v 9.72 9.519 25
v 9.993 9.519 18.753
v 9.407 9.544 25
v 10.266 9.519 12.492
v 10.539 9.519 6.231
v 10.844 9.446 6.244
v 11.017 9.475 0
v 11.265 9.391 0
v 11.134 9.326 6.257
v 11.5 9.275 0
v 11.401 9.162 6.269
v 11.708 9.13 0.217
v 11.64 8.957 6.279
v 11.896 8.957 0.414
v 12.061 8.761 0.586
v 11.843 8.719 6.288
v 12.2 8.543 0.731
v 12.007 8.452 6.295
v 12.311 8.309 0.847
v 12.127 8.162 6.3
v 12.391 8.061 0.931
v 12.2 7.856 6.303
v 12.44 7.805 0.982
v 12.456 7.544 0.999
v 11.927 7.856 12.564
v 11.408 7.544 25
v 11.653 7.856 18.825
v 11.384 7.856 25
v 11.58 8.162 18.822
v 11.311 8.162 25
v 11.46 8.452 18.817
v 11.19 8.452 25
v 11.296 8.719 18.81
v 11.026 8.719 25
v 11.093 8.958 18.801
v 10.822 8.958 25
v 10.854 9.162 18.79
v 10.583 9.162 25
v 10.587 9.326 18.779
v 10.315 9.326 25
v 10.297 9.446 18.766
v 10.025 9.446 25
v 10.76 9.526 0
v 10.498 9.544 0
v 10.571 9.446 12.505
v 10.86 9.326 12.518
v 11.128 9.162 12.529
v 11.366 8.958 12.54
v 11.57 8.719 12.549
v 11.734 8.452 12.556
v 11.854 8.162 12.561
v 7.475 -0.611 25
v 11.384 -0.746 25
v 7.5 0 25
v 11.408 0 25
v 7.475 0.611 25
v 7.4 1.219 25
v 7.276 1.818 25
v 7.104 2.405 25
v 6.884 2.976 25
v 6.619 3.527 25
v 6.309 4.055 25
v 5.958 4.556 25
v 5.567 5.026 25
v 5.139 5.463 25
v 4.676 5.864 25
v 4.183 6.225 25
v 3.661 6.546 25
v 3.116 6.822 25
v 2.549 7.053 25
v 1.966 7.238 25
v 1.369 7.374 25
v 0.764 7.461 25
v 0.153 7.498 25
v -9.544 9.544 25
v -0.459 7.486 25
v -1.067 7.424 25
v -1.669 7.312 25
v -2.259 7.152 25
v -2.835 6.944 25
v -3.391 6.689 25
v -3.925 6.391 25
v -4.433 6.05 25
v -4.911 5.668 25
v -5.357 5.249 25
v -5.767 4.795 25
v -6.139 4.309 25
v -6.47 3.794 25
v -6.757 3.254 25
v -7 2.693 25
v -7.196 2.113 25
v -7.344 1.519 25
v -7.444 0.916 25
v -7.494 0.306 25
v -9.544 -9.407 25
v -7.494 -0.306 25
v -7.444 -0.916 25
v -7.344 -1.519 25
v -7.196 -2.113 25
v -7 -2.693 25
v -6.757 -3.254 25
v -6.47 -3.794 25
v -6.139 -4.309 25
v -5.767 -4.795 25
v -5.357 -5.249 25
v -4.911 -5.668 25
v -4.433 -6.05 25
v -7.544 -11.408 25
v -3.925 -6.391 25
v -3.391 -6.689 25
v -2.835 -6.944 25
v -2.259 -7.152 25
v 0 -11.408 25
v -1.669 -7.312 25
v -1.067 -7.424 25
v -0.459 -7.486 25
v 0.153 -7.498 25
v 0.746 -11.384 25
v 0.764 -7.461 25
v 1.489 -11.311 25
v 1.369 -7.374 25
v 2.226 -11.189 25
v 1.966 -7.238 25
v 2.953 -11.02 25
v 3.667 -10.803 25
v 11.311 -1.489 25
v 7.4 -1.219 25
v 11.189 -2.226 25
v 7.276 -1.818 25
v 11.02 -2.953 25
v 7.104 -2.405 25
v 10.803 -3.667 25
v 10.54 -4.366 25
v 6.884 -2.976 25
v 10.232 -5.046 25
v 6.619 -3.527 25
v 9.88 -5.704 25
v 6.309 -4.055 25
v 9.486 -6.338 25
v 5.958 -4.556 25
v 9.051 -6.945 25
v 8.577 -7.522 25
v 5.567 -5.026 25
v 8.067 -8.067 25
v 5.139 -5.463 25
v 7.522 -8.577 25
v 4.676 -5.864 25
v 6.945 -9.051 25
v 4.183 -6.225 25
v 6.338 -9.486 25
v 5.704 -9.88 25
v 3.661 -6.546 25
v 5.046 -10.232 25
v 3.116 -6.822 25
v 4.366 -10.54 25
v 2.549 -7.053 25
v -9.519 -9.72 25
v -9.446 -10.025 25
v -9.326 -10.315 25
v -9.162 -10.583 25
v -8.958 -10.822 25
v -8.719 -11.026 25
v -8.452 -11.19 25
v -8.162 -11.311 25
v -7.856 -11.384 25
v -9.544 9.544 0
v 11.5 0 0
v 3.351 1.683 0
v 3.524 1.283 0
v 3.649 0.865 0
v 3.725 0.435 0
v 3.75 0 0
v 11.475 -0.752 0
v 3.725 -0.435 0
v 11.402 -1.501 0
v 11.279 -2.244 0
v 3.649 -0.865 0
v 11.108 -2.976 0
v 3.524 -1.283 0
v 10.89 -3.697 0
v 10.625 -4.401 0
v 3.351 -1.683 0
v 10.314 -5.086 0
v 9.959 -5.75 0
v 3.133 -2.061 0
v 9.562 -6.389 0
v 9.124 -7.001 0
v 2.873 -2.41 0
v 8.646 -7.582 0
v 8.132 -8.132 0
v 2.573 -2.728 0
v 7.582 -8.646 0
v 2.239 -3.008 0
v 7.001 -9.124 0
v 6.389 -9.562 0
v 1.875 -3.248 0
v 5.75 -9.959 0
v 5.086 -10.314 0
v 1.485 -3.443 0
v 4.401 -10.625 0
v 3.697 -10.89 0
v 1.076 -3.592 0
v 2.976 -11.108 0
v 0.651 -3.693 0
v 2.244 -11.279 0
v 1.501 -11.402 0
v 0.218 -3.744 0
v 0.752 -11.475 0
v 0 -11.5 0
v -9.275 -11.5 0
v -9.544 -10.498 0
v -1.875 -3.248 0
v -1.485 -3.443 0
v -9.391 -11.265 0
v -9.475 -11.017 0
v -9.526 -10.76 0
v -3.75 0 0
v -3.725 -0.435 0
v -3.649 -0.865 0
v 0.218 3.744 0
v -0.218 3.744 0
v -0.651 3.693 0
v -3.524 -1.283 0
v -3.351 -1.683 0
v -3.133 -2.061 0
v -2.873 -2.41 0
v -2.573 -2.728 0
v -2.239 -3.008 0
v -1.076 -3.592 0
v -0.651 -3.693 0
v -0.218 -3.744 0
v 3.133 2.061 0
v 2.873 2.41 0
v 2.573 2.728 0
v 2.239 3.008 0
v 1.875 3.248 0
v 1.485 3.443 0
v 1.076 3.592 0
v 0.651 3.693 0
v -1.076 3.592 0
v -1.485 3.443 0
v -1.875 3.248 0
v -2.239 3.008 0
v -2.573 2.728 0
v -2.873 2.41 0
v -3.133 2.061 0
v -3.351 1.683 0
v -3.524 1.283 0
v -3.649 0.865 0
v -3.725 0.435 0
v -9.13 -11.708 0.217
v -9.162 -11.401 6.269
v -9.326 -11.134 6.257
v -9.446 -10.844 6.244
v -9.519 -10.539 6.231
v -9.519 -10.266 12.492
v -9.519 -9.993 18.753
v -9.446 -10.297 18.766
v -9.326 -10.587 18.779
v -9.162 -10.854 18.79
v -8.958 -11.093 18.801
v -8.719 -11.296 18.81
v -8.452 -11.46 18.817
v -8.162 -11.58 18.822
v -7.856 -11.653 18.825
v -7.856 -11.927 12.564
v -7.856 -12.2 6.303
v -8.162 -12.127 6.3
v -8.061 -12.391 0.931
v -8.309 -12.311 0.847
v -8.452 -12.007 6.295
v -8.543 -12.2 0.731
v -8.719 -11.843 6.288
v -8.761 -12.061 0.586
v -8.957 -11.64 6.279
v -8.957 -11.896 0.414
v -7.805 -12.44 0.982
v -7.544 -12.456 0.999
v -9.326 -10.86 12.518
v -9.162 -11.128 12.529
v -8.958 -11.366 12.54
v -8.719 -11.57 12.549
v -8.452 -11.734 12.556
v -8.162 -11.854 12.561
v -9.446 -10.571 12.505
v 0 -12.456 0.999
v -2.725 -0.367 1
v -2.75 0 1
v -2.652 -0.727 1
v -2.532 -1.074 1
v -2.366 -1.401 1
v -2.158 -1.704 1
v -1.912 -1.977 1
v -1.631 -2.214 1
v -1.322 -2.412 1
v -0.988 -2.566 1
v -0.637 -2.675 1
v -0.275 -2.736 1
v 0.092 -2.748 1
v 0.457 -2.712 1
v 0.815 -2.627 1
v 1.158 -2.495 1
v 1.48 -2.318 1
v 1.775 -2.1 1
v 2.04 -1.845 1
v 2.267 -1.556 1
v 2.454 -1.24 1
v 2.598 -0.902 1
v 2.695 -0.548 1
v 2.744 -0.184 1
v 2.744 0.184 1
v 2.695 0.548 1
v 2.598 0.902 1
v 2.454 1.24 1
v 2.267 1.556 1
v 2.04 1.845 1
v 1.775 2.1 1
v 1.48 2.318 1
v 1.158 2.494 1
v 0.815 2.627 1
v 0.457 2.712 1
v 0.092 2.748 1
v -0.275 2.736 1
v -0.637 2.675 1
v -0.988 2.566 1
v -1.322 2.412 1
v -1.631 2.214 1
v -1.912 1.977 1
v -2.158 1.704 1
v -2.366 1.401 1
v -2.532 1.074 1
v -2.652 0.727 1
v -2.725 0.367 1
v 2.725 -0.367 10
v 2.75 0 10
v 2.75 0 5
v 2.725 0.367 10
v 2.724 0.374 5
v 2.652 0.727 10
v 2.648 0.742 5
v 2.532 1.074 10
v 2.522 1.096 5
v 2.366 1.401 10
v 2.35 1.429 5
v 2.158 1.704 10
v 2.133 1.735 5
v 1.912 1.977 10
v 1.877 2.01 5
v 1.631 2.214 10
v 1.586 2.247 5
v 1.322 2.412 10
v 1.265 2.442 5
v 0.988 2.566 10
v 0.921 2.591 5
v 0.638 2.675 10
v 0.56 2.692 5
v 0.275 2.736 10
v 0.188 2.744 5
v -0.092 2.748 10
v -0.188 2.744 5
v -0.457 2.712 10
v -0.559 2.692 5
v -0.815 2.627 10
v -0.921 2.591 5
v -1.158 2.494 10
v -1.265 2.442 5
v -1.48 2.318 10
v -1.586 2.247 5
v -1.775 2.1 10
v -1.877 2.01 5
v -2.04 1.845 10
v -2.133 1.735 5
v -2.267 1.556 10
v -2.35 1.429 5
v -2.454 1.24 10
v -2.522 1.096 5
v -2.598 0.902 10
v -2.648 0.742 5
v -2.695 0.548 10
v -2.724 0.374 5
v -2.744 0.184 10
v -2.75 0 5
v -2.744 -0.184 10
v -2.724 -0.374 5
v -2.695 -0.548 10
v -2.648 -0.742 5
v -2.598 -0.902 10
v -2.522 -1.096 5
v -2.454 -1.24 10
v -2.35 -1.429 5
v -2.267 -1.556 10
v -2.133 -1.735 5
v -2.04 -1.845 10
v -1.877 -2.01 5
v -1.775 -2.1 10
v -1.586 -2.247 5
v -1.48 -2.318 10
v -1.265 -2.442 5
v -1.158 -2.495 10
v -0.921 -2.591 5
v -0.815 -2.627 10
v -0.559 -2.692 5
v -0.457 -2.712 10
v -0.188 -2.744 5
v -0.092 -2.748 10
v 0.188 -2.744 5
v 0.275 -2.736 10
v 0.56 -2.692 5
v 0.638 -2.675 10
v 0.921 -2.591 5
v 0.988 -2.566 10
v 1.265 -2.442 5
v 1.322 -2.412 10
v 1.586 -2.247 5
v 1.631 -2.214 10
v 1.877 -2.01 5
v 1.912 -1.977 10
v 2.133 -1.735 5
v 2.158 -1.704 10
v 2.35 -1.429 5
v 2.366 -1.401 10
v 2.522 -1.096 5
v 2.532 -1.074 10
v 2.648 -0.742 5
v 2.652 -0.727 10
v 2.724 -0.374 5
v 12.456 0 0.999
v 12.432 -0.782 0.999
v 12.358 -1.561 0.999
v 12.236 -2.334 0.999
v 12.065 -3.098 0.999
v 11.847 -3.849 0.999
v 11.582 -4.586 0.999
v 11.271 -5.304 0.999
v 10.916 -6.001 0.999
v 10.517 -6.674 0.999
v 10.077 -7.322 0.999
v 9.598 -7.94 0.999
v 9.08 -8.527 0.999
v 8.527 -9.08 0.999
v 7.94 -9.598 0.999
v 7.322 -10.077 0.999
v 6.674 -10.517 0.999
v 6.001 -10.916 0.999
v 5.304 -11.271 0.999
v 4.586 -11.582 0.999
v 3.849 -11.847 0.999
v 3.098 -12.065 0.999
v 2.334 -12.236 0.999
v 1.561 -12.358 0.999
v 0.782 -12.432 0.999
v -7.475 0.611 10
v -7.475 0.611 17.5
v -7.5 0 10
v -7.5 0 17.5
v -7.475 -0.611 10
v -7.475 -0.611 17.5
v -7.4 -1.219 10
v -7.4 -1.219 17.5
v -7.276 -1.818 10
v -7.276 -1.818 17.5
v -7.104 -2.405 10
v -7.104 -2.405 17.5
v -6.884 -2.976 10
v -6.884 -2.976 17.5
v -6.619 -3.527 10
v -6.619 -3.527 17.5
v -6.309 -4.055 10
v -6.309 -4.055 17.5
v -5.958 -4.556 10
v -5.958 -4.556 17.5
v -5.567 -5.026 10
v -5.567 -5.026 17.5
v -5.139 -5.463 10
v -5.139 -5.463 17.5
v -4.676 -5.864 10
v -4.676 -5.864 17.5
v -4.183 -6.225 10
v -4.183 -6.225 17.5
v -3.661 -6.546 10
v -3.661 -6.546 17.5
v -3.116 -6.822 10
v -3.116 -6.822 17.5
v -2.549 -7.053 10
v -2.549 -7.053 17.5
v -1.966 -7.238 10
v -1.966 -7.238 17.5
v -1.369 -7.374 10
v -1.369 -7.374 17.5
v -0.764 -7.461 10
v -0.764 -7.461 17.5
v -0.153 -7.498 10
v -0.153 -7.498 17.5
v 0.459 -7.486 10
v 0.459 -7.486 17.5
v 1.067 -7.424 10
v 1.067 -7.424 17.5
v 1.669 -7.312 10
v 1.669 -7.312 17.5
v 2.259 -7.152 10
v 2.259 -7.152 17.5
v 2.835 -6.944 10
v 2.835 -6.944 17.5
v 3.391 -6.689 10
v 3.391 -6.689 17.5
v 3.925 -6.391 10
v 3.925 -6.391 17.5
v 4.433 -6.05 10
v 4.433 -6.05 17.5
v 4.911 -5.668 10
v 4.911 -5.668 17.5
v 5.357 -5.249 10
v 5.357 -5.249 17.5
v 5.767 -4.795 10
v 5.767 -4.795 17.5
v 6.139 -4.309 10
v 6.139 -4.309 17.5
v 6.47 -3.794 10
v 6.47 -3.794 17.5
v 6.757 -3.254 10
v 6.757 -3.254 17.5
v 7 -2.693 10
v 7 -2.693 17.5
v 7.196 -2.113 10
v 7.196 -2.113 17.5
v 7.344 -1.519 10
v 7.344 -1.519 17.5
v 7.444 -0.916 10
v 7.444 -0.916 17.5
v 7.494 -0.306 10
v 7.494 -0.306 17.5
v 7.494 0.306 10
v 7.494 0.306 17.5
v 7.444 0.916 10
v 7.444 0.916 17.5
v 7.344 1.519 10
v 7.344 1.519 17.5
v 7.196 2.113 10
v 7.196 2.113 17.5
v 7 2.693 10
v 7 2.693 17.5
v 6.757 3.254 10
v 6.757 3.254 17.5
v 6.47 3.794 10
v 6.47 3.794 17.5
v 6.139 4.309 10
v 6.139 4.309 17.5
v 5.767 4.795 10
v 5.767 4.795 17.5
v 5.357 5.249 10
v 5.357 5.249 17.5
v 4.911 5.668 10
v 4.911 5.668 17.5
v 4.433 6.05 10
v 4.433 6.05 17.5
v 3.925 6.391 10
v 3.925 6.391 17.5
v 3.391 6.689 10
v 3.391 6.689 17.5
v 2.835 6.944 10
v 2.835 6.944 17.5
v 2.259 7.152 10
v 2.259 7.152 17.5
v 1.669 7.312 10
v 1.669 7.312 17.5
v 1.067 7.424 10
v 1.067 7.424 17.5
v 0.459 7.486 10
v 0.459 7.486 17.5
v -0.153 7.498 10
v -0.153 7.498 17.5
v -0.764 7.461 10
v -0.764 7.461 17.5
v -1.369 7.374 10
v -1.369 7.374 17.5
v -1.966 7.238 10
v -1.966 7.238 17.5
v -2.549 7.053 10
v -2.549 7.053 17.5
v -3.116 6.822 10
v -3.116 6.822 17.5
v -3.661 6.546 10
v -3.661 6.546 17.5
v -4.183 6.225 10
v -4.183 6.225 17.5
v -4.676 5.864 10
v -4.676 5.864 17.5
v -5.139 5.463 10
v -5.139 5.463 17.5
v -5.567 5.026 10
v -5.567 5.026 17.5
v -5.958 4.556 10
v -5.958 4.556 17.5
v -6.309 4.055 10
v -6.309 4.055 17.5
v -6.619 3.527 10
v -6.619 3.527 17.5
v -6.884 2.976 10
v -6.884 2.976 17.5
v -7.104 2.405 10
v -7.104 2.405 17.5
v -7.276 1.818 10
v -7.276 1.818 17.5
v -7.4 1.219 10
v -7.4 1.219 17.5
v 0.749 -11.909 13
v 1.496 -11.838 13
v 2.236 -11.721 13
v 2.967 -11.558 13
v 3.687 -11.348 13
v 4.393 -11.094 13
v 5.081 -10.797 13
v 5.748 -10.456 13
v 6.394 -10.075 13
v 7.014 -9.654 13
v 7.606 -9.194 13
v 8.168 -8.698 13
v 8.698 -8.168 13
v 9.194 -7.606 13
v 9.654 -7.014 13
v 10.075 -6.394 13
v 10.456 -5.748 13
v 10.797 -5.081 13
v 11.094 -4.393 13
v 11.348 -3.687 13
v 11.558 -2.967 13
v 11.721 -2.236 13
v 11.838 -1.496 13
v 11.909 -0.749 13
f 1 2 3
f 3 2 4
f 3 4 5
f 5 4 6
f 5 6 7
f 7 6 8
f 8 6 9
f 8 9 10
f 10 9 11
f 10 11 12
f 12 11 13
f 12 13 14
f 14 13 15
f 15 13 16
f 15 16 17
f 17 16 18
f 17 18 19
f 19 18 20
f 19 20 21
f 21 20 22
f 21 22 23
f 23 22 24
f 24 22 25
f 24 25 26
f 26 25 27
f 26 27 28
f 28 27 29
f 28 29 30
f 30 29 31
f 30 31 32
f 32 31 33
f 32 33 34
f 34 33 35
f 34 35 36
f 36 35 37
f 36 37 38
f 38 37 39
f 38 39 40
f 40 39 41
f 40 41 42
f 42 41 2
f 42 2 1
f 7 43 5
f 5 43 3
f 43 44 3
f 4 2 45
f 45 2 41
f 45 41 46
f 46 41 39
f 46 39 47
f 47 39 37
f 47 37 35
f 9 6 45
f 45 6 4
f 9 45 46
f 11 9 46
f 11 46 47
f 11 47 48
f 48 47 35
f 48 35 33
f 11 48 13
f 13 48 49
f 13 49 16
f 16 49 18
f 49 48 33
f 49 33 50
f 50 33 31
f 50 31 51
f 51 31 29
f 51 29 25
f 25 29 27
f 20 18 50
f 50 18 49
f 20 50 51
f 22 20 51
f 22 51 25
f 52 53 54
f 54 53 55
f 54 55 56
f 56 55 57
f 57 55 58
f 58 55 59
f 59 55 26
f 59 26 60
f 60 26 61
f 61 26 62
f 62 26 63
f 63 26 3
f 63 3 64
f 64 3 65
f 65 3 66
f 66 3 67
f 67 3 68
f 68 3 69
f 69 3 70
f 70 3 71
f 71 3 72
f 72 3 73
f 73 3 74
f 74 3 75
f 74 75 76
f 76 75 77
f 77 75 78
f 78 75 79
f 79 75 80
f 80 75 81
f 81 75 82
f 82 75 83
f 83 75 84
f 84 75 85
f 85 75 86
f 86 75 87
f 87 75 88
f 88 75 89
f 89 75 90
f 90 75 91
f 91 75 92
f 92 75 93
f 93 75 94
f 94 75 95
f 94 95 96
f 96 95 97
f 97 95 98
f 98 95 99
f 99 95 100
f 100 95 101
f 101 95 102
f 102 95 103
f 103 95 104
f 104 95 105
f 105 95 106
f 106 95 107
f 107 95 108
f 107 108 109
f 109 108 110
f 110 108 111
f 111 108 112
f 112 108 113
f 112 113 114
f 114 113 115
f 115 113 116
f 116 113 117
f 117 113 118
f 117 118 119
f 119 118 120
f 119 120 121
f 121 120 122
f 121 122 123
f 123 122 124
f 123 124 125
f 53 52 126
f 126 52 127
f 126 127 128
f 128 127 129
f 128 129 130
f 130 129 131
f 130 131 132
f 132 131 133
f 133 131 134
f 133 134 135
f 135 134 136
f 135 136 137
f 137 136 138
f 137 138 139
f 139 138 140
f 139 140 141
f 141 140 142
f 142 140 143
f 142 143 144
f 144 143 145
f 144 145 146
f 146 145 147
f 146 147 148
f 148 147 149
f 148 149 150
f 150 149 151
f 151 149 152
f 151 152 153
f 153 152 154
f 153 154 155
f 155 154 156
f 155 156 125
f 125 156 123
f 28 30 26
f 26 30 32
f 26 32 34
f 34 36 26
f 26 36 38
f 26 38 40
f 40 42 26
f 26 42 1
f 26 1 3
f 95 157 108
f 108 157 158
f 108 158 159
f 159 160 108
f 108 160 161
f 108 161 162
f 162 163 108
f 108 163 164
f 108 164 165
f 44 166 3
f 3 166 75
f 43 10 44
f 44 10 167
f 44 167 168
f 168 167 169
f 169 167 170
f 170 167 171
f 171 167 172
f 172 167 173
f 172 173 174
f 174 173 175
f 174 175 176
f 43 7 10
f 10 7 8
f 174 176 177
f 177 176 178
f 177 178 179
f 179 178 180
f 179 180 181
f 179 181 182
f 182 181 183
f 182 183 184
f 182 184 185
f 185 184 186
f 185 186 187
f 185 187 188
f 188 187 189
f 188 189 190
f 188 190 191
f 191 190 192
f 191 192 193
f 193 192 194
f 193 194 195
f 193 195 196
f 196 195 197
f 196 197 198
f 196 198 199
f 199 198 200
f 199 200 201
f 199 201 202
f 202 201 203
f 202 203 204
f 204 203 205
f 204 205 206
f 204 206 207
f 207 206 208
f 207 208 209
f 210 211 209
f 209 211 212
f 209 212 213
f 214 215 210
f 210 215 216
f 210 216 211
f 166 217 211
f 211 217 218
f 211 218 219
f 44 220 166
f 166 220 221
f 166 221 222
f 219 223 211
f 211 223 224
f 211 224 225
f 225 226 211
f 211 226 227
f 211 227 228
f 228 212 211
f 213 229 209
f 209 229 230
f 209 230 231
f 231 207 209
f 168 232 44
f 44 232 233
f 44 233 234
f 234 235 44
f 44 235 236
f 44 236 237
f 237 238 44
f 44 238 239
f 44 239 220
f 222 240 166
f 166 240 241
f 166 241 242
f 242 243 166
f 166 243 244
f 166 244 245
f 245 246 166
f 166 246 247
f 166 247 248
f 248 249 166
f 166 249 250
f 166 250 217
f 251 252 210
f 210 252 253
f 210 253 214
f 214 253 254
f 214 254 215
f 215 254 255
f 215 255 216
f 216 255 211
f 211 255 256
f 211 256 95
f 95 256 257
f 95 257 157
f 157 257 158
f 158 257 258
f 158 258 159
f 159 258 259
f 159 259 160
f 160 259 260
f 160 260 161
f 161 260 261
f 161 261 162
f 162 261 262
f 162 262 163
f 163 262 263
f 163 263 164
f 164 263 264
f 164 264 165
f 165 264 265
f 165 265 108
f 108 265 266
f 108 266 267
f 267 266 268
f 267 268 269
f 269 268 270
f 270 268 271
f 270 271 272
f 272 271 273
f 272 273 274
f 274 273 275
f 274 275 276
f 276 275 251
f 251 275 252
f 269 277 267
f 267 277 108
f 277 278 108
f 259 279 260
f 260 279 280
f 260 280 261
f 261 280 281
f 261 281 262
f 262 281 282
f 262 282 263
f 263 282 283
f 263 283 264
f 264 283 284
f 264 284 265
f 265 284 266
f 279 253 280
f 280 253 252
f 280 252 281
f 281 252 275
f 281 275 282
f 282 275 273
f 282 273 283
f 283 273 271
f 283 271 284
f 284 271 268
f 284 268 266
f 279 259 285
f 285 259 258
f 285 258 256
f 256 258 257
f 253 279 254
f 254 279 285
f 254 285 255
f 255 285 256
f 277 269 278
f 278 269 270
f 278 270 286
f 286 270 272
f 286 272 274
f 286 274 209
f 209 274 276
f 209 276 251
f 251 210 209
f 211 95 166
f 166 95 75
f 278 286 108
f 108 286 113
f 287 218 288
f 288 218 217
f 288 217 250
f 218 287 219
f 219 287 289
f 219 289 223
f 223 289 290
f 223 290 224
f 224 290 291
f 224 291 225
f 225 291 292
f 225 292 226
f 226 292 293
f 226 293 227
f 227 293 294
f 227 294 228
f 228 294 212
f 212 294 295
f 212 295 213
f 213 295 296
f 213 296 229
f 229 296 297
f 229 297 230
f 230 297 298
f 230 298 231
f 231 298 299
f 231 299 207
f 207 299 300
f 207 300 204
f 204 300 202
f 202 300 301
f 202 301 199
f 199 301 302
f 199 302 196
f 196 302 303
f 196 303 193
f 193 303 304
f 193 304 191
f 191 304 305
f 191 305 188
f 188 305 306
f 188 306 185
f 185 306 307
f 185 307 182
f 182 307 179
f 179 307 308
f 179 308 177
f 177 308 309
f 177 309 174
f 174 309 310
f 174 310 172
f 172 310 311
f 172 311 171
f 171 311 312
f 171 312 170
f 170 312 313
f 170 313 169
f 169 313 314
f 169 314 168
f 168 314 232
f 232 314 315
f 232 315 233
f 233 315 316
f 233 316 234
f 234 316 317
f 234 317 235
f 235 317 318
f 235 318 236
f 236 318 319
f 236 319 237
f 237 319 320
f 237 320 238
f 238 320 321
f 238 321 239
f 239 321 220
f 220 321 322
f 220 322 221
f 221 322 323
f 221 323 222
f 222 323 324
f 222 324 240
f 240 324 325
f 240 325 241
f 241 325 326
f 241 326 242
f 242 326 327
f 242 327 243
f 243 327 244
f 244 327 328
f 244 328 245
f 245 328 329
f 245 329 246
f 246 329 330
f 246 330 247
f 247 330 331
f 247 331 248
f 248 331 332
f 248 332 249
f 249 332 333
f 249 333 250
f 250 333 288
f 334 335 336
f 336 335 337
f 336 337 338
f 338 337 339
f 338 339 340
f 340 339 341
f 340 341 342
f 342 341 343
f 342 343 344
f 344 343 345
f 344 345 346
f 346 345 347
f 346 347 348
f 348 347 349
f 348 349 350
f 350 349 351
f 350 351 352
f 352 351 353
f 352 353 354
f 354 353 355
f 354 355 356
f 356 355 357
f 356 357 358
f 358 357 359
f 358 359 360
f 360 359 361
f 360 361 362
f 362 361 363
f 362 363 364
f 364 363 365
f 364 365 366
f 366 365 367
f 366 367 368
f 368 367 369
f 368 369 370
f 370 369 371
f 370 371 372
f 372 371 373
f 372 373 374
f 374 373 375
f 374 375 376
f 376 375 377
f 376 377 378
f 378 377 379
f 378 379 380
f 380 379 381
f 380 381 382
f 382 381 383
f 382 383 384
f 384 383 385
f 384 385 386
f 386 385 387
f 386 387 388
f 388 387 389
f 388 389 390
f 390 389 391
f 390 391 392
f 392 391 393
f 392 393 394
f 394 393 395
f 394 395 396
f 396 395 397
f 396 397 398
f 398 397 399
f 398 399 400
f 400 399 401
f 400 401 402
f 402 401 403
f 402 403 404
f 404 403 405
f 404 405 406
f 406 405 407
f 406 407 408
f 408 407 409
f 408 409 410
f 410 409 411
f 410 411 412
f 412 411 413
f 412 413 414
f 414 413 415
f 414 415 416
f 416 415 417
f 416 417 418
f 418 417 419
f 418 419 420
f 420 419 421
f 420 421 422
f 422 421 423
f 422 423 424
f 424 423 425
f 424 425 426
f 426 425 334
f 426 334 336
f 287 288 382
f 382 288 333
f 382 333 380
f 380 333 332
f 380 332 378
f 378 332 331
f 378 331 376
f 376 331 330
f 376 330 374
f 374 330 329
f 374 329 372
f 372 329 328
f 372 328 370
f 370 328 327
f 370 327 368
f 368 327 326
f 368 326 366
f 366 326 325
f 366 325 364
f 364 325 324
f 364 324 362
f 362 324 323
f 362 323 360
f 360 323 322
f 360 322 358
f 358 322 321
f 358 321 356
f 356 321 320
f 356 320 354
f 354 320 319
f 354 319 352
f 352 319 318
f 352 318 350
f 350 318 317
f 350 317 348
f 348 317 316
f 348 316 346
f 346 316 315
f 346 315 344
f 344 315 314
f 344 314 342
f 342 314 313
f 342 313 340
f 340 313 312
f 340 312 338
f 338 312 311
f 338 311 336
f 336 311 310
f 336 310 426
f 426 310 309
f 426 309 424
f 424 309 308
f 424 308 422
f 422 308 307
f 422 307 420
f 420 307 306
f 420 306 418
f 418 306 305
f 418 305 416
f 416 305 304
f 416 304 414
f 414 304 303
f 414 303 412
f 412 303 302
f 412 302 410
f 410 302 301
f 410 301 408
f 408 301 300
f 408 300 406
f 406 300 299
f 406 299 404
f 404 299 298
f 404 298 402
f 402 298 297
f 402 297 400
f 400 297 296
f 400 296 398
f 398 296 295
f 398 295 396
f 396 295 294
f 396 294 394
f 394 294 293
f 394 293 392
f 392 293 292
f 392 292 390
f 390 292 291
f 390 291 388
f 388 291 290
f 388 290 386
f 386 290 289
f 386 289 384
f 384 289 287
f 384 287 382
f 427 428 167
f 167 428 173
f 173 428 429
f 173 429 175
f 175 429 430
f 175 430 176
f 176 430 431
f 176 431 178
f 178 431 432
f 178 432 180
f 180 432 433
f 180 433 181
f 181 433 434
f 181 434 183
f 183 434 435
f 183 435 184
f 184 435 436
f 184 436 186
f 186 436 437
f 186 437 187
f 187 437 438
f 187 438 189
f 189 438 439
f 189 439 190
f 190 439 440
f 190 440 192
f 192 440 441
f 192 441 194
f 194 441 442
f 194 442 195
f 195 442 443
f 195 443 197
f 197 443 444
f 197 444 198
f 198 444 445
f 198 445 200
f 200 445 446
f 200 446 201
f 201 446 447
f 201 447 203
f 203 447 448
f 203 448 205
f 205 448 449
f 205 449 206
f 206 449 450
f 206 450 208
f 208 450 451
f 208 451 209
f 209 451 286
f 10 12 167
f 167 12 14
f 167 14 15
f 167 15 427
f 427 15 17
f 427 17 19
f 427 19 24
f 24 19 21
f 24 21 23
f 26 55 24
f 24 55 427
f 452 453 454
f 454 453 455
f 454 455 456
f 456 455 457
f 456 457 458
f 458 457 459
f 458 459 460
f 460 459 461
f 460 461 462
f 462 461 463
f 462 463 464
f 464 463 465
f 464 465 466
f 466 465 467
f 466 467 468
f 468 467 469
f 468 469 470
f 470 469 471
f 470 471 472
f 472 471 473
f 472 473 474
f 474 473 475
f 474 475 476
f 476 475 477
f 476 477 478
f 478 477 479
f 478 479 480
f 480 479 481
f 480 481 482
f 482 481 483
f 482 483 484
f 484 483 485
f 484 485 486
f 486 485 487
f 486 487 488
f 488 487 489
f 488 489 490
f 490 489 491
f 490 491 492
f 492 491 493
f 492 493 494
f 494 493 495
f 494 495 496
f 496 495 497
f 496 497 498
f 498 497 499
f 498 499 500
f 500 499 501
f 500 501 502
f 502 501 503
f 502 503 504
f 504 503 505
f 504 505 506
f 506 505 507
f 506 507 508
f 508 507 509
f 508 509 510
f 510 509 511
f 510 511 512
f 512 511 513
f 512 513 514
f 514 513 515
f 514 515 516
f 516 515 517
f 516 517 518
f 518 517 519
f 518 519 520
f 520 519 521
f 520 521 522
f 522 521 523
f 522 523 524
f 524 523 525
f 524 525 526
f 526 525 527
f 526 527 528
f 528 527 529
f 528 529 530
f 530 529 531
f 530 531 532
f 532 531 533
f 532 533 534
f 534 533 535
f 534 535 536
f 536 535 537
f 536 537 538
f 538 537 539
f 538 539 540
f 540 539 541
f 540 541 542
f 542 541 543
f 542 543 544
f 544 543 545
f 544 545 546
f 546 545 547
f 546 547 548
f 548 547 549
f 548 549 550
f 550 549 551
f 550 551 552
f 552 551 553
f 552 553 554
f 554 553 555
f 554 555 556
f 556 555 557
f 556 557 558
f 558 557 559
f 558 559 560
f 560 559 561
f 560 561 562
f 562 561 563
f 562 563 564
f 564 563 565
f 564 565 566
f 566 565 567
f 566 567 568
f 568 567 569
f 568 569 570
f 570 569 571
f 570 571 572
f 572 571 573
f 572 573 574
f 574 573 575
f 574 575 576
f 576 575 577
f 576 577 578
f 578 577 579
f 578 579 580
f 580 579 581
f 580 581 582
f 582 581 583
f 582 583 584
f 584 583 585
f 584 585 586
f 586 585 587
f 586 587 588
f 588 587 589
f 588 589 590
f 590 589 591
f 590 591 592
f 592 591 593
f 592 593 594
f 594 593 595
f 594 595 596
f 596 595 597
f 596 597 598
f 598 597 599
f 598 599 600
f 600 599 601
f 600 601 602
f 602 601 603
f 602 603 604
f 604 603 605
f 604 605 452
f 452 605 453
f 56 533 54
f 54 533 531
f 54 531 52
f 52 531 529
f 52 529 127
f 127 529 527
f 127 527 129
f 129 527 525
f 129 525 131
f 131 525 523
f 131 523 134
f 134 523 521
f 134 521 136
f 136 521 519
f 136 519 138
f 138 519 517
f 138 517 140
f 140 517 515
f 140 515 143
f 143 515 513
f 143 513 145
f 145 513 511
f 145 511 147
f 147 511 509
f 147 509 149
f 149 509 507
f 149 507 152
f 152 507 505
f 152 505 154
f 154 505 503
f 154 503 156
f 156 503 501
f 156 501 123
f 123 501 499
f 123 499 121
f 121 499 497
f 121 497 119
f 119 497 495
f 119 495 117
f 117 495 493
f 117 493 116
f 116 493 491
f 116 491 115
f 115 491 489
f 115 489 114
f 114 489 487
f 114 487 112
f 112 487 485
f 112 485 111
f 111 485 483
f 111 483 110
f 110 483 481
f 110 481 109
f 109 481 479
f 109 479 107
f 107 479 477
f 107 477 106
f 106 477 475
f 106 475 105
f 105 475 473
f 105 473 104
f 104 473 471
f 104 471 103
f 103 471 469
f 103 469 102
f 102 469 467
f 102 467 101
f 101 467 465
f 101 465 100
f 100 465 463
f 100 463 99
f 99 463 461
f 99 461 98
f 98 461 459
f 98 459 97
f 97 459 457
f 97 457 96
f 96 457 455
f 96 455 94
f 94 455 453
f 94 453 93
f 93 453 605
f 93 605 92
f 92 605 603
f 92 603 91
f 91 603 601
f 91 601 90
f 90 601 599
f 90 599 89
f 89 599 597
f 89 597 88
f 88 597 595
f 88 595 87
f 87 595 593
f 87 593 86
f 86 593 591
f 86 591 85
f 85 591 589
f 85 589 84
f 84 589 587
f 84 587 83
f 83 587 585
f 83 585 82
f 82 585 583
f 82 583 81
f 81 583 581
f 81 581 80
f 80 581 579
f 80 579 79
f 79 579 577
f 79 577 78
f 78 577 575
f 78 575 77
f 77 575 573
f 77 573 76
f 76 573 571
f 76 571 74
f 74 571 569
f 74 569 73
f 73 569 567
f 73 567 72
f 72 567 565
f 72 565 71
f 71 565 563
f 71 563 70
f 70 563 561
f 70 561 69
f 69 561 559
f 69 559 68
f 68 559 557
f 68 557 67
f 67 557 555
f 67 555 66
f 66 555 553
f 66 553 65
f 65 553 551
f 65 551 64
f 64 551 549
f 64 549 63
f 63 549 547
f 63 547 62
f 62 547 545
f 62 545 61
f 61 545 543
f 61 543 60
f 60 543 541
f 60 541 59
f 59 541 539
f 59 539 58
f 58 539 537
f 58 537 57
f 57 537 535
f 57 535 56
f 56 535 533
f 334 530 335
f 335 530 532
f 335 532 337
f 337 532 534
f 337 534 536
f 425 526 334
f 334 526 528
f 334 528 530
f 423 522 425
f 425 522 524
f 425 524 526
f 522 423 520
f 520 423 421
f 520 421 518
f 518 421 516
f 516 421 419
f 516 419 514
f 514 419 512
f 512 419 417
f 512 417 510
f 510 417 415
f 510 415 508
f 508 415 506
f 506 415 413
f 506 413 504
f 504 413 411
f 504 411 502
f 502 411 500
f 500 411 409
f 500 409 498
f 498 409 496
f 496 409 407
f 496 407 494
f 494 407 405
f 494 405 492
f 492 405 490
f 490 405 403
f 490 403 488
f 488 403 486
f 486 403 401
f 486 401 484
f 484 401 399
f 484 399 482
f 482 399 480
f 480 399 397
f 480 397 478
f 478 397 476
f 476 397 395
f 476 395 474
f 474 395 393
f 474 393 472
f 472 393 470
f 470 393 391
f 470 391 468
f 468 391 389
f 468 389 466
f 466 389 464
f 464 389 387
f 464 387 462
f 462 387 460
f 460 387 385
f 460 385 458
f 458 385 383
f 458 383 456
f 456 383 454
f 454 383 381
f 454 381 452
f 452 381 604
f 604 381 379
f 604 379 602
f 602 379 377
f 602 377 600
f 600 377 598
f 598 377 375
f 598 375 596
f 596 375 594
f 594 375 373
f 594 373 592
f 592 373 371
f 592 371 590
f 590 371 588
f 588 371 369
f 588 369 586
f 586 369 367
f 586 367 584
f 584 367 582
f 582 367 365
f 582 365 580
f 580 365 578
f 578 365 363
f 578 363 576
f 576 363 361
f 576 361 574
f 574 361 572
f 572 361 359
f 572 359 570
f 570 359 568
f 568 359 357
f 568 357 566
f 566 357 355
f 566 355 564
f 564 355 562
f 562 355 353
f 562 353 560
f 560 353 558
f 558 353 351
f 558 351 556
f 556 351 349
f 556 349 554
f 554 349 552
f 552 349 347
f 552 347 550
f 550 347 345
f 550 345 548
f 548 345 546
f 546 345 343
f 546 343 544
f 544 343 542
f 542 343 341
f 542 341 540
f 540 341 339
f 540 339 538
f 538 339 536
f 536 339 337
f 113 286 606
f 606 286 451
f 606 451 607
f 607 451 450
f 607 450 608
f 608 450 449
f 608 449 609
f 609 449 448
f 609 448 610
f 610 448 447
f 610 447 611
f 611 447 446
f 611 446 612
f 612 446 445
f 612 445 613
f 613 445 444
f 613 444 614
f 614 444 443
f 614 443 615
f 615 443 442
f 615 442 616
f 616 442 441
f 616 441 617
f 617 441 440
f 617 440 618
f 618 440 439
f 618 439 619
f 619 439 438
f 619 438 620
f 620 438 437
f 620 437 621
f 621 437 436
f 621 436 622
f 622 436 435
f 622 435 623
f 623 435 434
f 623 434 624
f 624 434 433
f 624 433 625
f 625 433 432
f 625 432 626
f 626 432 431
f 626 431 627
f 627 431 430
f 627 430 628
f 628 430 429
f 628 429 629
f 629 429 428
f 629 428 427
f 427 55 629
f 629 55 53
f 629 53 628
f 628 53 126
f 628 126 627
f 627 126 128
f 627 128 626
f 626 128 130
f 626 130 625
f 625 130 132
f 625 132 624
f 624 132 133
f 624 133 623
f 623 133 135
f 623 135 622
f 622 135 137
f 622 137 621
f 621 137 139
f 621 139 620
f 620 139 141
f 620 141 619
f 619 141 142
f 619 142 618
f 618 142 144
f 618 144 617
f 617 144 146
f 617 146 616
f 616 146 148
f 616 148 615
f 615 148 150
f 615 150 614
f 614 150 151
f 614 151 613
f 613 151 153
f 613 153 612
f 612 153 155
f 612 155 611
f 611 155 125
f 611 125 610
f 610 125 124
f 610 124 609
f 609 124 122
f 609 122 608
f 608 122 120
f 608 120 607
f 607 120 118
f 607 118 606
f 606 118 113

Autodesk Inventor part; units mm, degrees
ref_plane "YZ Plane" through (0, 0, 0) normal (1, 0, 0) x (0, 1, 0)
ref_plane "XZ Plane" through (0, 0, 0) normal (0, 1, 0) x (-1, 0, 0)
ref_plane "XY Plane" through (0, 0, 0) normal (0, 0, 1) x (1, 0, 0)
sketch "Sketch1" plane through (0, 0, 0) normal (0, 0, 1) x (1, 0, 0)
  circle A0 centre (0, 0) radius 12.5
  line L0 (12.5, 0) -> (12.5, 22.5)
  line L1 (12.5, 22.5) -> (-22.5, 22.5)
  line L2 (-22.5, 22.5) -> (-22.5, -12.5)
  line L3 (-22.5, -12.5) -> (0, -12.5)
  dimension "d0" = 25
  dimension "d1" = 35
  dimension "d2" = 35
extrude "Extrusion1" add sketch "Sketch1" along normal blind 25
draft "FaceDraft1" angle 2.5 pull direction (0, 0, 1) faces at (-15, -12.5, 8.3333) (3.6844, -11.9447, 16.6667) (12.5, 7.5, 8.3333) fixed edges at (-11.25, -12.5, 0) (8.8388, -8.8388, 0) (12.5, 11.25, 0)
sketch "Sketch2" plane through (0, 0, 0) normal (0, 0, -1) x (-1, 0, 0)
  circle A0 centre (0, 0) radius 2.75
  dimension "d6" = 5.5
extrude "Extrusion2" cut sketch "Sketch2" against normal through all
ref_plane "Work Plane1" through (0, 0, 10) normal (0, 0, -1) x (-1, 0, 0)
sketch "Sketch3" plane through (0, 0, 25) normal (0, 0, 1) x (1, 0, 0)
  circle A0 centre (0, 0) radius 2.75 projected
  circle A1 centre (0, 0) radius 7.5
  dimension "d10" = 15
extrude "Extrusion3" cut sketch "Sketch3" against normal up to surface (15 mm away)
chamfer "Chamfer1" distance 1 angle 45 6 edges at (8.8388, -8.8388, 0) (12.5, 11.25, 0) (-11.25, -12.5, 0) (2.75, 0, 0) (-5, 22.5, 0) (-22.5, 5, 0)
sketch "Sketch4" plane through (0, 0, 25) normal (0, 0, 1) x (1, 0, 0)
  line L0 (12.4564, 22.499) -> (12.4564, 0) projected
  line L1 (0, -12.4564) -> (-22.499, -12.4564) projected
  line L2 (12.4564, 9.5436) -> (-9.5436, 9.5436)
  line L3 (-9.5436, -12.4564) -> (-9.5436, 9.5436)
  arc A0 (0, -12.4564) -> (12.4564, 0) centre (0, 0) ccw projected
  line L4 (22, -23) -> (-37, -23)
  line L5 (-37, -23) -> (-37, 27)
  line L6 (-37, 27) -> (22, 27)
  line L7 (22, 27) -> (22, -23)
  point P0 (0, 0)
  dimension "d16" = 22
  dimension "d17" = 22
extrude "Extrusion4" cut sketch "Sketch4" against normal through all
fillet "Fillet1" radius 2 2 edges at (-9.5436, -11.9324, 12.9995) (11.9324, 9.5436, 12.9995)
equation "\"d2\" = d1"
equation "\"d17\" = d16"
properties part number "CornerHolder_3DPrint"
